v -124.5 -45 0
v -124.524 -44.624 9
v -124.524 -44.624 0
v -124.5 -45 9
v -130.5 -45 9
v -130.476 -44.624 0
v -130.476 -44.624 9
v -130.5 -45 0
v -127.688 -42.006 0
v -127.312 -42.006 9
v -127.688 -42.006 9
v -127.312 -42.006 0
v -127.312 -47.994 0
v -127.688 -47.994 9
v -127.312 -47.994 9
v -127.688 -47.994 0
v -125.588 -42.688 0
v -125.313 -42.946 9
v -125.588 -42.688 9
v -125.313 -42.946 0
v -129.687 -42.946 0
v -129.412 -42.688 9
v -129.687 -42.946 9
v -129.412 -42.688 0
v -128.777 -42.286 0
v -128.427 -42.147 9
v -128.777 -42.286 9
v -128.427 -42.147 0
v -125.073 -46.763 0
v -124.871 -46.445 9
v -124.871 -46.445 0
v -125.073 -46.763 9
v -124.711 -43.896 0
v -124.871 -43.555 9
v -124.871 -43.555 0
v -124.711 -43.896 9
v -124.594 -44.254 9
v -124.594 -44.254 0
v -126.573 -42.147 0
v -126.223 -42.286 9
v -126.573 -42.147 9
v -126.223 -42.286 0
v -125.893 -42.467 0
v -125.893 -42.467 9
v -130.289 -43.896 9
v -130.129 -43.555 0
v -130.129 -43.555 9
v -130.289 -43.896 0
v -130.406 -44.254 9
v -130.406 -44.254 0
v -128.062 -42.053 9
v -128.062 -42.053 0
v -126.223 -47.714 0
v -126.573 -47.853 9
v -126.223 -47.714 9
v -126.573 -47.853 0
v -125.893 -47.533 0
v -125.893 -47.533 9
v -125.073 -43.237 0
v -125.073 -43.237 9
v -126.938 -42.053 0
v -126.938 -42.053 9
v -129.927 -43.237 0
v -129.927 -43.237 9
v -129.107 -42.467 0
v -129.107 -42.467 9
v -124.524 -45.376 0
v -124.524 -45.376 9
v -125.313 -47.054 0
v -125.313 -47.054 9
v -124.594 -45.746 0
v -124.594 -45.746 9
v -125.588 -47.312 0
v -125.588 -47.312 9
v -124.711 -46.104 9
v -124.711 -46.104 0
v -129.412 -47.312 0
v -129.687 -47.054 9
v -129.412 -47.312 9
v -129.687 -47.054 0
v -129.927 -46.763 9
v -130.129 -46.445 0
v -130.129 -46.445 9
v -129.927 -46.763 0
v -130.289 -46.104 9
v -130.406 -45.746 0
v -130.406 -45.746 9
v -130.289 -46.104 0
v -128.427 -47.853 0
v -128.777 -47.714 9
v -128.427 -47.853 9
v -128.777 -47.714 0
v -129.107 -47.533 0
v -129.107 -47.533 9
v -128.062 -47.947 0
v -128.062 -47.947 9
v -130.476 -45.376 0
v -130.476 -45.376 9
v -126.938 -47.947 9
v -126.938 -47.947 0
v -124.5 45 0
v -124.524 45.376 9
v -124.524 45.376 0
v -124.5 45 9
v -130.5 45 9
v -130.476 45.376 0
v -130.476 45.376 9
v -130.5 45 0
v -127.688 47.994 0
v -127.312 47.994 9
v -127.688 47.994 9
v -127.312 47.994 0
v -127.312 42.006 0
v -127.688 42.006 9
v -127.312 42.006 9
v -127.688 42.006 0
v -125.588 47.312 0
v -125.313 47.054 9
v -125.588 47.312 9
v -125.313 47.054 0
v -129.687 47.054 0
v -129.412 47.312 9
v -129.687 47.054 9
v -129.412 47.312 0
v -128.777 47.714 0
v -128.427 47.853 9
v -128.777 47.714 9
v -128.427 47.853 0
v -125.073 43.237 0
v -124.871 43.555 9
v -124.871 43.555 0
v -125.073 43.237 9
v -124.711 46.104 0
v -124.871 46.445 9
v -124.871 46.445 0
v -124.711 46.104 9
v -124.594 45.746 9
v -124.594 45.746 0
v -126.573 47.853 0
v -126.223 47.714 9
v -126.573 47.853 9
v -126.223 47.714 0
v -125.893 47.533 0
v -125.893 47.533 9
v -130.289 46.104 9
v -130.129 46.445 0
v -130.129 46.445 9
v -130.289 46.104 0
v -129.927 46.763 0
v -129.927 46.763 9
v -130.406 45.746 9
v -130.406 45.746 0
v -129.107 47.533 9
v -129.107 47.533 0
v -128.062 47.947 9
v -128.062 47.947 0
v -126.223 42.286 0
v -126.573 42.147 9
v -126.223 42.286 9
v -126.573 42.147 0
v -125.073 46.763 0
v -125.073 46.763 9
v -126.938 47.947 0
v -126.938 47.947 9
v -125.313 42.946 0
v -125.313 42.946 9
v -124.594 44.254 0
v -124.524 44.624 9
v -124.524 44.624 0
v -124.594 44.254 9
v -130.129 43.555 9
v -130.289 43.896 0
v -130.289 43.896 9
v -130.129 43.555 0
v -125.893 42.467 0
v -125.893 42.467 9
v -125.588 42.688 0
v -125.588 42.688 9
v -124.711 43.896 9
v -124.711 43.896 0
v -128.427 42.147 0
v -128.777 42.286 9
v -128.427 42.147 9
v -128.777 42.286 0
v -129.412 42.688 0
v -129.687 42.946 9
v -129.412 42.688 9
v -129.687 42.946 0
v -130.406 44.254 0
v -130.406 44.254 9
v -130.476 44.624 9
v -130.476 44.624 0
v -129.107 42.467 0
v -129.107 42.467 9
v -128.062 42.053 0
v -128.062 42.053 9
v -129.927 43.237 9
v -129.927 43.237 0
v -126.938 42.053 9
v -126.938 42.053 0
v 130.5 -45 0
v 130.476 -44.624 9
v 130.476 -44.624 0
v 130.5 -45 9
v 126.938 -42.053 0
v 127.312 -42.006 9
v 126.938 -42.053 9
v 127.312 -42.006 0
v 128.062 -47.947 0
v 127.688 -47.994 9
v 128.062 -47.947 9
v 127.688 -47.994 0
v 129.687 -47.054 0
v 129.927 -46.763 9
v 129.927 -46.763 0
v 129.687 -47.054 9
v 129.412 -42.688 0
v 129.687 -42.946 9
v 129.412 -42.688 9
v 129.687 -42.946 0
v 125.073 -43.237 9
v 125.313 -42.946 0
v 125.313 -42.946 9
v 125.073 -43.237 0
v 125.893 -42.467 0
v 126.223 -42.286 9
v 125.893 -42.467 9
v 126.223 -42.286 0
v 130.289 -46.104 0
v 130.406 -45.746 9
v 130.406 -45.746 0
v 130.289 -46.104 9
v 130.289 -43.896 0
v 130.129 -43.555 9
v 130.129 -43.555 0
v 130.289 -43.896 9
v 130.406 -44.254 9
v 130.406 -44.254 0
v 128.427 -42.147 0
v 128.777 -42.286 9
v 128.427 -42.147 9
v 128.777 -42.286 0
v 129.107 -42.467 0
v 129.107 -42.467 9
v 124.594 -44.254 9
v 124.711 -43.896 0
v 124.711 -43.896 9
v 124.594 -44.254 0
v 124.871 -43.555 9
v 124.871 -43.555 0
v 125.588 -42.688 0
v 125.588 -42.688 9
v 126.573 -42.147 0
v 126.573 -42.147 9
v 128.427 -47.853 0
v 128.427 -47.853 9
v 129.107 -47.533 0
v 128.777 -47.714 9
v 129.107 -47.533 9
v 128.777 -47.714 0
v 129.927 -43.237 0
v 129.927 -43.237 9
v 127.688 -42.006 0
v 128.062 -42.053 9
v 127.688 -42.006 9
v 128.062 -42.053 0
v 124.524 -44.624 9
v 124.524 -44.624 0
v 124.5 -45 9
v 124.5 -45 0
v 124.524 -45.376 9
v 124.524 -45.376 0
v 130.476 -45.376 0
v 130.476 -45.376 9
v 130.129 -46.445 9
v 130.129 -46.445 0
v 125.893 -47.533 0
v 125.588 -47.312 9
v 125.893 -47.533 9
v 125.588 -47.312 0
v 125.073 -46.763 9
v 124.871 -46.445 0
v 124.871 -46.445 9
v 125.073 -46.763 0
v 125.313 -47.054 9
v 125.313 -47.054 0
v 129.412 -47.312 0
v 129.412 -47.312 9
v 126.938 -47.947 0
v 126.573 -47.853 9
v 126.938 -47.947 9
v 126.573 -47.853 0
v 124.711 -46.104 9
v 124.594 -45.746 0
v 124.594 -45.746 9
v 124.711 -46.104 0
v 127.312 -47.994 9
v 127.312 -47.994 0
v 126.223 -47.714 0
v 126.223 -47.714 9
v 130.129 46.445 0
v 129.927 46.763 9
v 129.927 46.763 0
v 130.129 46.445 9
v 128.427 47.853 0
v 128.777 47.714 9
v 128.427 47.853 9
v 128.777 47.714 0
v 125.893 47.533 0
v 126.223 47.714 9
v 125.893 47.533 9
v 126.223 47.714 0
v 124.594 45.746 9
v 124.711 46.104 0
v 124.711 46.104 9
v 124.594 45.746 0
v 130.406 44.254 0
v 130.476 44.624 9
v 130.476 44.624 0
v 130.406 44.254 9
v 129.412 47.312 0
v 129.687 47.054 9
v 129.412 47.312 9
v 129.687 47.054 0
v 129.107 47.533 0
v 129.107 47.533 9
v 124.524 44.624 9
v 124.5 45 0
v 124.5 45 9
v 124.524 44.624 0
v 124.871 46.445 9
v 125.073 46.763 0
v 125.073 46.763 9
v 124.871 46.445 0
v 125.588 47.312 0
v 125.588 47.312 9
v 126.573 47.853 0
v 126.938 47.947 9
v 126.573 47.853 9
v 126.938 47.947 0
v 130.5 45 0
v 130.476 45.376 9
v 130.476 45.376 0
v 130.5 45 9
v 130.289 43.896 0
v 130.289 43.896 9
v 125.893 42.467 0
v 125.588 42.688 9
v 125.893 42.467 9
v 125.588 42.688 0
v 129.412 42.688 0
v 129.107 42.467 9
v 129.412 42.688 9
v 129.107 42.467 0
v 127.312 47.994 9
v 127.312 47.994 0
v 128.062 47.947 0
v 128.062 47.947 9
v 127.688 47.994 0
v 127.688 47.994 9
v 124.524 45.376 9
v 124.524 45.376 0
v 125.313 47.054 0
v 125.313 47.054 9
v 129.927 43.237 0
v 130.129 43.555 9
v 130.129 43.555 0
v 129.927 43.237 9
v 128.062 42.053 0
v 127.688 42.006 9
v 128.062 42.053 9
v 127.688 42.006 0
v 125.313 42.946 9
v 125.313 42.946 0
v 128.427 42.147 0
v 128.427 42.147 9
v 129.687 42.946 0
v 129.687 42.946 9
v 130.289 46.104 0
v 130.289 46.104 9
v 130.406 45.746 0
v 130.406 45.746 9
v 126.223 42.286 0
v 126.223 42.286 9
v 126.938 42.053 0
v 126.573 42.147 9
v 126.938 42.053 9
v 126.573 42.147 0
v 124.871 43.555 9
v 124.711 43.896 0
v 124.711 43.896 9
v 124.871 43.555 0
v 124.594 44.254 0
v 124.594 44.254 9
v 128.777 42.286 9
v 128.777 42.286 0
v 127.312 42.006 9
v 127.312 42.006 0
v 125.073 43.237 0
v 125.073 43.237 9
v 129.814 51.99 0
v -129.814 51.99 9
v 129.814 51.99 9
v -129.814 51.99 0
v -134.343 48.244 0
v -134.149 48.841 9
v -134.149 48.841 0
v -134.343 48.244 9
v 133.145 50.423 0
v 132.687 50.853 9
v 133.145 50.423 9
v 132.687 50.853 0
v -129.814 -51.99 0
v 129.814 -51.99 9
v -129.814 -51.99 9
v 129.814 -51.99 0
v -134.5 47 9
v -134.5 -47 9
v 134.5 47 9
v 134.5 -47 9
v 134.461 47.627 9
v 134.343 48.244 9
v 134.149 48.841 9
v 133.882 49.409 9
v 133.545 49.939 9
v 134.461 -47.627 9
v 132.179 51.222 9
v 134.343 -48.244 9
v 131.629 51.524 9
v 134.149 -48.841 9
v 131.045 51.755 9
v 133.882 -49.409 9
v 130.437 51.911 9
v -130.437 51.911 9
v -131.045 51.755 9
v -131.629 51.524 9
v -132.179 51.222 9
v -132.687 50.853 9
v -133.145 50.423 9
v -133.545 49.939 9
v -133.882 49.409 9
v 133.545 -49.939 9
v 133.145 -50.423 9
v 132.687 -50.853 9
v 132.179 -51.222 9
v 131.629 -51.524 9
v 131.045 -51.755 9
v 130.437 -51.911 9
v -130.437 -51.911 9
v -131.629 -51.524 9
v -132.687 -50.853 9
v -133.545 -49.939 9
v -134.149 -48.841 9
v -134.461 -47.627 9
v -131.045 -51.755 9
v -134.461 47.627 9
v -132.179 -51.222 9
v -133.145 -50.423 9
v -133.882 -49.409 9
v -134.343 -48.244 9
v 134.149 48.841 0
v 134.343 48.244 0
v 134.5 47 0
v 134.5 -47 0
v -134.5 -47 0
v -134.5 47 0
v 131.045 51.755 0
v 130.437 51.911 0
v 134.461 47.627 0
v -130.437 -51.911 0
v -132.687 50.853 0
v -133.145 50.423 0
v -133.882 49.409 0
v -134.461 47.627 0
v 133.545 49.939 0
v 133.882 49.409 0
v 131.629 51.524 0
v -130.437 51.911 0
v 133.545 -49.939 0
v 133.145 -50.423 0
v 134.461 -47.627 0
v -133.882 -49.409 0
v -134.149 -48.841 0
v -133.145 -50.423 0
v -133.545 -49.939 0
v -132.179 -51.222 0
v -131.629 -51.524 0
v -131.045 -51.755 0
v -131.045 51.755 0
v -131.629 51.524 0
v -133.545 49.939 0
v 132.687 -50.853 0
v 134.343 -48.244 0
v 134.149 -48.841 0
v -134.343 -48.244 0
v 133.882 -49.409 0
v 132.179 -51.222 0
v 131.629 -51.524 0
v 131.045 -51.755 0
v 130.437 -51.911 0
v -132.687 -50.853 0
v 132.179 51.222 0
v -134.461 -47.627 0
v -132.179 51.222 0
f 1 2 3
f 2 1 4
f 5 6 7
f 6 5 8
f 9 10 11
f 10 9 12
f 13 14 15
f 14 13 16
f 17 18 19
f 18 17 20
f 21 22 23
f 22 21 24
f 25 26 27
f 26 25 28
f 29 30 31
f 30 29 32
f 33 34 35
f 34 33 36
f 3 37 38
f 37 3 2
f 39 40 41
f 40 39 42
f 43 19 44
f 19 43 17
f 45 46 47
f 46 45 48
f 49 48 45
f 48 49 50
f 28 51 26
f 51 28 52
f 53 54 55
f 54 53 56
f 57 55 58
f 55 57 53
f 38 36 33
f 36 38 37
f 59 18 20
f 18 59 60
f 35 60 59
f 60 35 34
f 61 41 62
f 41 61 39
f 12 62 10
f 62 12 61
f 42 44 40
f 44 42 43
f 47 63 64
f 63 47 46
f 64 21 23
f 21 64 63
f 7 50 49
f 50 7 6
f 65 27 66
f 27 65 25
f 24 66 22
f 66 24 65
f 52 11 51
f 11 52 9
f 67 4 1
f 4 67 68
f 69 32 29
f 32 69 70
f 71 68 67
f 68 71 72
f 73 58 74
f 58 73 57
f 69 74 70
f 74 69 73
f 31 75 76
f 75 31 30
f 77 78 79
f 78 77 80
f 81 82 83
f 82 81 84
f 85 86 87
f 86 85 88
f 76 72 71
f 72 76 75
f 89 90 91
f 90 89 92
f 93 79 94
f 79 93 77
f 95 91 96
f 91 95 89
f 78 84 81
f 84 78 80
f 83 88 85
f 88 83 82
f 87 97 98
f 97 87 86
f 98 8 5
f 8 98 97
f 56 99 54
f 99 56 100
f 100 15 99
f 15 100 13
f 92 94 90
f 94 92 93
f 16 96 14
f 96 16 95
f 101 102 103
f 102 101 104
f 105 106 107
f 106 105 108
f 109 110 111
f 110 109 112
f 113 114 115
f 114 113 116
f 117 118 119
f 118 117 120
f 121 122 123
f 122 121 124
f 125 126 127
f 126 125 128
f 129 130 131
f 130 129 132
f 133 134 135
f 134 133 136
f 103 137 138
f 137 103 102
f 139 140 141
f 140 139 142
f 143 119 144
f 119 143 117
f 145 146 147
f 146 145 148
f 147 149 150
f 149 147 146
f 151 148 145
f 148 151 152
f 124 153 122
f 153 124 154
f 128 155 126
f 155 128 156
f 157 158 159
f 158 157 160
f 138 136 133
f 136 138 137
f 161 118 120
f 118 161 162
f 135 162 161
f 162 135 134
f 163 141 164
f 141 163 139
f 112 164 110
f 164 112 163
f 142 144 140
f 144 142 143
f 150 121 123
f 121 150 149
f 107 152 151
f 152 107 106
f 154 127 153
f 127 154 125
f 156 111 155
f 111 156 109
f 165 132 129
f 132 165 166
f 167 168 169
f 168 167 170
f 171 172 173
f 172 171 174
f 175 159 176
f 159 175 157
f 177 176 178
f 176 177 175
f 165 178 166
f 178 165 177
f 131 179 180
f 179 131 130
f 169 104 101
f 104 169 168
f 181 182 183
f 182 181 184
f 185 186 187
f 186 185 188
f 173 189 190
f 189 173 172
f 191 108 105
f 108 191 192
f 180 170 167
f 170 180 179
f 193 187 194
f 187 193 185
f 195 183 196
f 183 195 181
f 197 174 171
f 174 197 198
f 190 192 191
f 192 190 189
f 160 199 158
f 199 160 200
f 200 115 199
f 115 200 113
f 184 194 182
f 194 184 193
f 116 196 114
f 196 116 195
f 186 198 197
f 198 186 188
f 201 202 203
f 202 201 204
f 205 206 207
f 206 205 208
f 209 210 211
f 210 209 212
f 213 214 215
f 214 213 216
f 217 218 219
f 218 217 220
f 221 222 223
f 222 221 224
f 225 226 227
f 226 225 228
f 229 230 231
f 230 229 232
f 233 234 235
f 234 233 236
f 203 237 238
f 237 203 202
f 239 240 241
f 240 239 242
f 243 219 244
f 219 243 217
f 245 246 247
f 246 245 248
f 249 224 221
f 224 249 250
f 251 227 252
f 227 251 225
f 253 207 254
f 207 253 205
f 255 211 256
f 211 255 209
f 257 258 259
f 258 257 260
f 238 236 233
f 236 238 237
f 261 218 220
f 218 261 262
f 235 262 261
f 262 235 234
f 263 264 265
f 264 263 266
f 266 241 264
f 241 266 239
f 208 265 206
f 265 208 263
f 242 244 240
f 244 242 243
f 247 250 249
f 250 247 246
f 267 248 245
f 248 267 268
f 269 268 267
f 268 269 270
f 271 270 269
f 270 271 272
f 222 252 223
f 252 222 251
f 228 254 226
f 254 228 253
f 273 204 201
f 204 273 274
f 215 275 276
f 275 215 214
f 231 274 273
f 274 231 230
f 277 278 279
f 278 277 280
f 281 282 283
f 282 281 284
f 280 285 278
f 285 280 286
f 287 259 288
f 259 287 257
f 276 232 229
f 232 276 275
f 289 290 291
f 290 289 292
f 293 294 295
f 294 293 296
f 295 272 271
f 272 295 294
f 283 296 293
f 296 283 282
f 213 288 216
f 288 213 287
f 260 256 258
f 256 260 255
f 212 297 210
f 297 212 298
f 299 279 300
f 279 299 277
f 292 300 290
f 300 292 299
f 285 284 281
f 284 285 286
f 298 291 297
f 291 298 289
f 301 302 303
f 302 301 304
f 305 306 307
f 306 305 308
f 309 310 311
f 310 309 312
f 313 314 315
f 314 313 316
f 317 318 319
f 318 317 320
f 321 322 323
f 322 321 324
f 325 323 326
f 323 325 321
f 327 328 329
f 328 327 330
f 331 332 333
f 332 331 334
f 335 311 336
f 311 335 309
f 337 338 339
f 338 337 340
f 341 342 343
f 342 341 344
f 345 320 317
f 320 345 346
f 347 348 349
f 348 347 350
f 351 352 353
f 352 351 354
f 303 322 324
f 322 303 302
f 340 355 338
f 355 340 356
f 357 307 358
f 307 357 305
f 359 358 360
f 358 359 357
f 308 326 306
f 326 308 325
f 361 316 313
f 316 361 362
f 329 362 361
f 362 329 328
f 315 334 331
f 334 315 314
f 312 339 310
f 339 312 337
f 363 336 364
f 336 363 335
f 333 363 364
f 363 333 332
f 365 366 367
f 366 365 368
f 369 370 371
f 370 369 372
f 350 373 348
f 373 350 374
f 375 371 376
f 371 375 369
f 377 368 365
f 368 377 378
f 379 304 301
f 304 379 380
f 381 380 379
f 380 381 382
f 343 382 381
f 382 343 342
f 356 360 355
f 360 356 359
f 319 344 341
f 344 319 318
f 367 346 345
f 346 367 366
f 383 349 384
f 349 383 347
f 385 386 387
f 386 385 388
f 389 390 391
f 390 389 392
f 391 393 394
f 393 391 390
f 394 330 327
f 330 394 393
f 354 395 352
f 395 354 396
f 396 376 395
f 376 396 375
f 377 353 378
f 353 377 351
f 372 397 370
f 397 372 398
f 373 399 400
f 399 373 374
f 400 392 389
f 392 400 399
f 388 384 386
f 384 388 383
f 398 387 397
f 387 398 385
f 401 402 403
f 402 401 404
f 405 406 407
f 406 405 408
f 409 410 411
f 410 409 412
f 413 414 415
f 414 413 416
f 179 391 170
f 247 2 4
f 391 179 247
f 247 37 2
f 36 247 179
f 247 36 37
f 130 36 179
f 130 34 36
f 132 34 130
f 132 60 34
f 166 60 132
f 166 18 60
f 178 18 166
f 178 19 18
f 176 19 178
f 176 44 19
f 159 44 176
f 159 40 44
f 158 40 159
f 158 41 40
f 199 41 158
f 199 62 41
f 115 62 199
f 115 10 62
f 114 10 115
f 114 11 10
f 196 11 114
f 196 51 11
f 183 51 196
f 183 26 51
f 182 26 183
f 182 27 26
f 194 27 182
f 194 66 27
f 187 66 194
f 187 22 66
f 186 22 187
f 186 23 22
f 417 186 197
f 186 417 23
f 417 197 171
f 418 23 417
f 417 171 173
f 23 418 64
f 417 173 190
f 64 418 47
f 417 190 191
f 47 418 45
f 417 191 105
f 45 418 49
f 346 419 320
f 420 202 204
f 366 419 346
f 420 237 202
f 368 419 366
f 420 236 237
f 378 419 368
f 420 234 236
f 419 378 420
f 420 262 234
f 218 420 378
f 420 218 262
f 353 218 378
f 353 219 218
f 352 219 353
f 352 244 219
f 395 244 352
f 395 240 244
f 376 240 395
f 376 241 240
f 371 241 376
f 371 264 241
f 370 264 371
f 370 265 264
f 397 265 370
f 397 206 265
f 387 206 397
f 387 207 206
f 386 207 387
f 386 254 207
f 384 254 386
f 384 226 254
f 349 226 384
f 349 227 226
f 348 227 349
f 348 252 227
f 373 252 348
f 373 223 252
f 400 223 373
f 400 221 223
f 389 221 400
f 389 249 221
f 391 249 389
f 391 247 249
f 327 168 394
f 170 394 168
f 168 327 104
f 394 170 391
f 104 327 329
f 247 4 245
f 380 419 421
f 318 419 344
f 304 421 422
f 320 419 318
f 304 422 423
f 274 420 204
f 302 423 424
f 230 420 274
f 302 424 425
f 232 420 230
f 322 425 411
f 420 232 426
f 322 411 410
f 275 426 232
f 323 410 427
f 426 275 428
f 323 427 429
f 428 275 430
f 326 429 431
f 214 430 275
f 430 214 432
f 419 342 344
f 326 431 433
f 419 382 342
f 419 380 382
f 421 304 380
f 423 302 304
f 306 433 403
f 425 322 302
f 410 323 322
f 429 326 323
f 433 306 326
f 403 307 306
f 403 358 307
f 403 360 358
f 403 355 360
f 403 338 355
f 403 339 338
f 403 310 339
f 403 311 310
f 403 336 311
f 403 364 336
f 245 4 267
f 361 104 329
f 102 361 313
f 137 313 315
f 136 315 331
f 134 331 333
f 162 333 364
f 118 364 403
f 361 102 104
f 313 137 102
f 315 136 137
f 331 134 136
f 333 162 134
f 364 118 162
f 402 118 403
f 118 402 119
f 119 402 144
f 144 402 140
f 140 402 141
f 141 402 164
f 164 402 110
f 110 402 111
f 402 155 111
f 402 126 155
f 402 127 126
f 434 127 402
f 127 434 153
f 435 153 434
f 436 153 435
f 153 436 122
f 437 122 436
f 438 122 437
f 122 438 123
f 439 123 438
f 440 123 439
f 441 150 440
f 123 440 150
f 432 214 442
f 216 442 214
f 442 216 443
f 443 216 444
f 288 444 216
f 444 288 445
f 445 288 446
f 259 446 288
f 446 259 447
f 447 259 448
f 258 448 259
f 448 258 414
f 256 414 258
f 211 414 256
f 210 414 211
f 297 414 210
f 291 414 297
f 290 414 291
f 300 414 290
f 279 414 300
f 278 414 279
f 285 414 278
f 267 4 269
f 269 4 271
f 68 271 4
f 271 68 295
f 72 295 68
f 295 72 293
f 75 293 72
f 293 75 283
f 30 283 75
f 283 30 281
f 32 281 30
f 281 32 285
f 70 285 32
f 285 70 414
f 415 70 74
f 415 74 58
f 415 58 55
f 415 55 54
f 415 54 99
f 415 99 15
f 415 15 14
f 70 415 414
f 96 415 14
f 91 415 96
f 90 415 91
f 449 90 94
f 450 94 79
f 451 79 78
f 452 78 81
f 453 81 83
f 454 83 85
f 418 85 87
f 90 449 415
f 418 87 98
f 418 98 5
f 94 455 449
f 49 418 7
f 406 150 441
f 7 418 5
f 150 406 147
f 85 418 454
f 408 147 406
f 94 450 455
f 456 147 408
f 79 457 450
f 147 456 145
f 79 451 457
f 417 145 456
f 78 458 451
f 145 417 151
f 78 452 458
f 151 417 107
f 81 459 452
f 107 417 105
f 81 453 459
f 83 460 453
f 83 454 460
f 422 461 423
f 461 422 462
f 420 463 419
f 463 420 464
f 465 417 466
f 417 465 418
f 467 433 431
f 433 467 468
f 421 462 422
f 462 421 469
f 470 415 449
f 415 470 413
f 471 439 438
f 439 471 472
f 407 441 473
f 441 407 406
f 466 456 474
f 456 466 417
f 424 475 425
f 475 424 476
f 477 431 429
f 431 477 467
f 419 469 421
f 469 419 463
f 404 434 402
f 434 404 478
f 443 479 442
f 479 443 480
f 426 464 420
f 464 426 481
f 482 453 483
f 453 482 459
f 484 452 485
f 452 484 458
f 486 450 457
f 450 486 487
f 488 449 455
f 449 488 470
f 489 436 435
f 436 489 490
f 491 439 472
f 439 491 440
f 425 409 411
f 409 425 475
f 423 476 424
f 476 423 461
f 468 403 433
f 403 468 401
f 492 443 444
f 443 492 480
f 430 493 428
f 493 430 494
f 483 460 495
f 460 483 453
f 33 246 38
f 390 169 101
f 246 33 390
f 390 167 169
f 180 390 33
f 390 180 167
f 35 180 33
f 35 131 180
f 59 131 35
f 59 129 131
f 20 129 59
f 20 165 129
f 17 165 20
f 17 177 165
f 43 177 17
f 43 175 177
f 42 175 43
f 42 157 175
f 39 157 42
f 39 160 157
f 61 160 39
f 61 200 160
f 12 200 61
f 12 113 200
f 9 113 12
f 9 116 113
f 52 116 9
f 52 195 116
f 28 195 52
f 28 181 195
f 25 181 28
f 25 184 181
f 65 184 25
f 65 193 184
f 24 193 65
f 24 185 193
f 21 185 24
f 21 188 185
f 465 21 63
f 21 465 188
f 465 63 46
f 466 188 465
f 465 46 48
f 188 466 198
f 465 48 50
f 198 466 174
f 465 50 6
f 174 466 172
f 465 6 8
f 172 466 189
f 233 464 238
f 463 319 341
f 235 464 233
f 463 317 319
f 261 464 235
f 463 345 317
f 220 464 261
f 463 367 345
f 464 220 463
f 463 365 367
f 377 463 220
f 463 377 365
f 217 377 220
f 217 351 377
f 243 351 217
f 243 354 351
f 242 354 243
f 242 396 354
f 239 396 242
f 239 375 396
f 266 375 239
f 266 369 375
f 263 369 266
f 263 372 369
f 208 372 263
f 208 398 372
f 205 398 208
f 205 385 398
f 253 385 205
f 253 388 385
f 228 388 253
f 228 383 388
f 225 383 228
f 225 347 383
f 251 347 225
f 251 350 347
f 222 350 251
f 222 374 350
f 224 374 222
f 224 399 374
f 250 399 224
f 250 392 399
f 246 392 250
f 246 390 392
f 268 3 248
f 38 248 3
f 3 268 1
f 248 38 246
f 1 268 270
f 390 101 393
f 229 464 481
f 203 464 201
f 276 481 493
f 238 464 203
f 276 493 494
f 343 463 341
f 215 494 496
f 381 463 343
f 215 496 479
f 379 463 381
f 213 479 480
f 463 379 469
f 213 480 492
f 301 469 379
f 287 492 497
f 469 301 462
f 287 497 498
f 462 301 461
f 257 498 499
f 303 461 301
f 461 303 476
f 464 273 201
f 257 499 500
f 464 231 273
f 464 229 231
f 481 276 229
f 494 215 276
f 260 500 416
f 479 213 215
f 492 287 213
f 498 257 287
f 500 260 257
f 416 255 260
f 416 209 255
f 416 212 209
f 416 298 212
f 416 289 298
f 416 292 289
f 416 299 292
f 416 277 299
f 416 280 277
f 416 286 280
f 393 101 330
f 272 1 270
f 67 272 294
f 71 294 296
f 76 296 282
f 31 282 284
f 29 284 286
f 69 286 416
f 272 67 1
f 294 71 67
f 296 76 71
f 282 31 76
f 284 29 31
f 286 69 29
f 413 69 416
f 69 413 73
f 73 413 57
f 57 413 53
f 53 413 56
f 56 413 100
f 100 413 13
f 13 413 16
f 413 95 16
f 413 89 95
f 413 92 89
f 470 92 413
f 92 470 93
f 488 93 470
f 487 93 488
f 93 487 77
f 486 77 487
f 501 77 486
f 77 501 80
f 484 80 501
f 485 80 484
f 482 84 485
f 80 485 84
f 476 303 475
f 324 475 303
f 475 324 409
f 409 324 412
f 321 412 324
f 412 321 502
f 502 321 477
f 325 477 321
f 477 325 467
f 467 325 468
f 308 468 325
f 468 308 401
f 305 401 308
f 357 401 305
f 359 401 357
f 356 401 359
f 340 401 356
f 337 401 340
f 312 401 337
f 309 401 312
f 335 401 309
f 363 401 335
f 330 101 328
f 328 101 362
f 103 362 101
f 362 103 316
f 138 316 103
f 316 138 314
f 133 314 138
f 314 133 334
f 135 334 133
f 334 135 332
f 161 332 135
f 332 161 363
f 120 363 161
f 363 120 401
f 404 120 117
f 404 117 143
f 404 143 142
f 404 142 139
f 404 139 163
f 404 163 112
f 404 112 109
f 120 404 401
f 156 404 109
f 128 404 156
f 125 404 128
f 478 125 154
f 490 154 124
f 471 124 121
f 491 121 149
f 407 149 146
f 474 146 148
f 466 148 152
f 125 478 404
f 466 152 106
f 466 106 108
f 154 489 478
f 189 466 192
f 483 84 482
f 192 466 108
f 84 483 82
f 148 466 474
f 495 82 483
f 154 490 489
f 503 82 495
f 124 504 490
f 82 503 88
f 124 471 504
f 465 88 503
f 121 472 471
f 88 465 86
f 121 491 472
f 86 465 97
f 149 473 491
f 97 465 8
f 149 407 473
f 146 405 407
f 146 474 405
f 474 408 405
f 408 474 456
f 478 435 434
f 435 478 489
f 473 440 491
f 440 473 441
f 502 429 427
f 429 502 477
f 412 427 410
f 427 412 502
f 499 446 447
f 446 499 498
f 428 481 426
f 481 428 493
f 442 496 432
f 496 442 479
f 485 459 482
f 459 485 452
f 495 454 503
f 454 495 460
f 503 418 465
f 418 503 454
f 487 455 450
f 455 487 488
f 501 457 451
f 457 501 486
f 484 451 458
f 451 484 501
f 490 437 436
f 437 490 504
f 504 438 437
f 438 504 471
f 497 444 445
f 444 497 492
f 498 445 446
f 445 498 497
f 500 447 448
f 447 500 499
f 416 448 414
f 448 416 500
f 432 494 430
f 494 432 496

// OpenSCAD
$fn = 50;


difference() {
	union() {
		hull() {
			translate(v = [-129.5000000000, 47.0000000000, 0]) {
				cylinder(h = 9, r = 5);
			}
			translate(v = [129.5000000000, 47.0000000000, 0]) {
				cylinder(h = 9, r = 5);
			}
			translate(v = [-129.5000000000, -47.0000000000, 0]) {
				cylinder(h = 9, r = 5);
			}
			translate(v = [129.5000000000, -47.0000000000, 0]) {
				cylinder(h = 9, r = 5);
			}
		}
	}
	union() {
		translate(v = [-127.5000000000, -45.0000000000, -100.0000000000]) {
			cylinder(h = 200, r = 3.0000000000);
		}
		translate(v = [-127.5000000000, 45.0000000000, -100.0000000000]) {
			cylinder(h = 200, r = 3.0000000000);
		}
		translate(v = [127.5000000000, -45.0000000000, -100.0000000000]) {
			cylinder(h = 200, r = 3.0000000000);
		}
		translate(v = [127.5000000000, 45.0000000000, -100.0000000000]) {
			cylinder(h = 200, r = 3.0000000000);
		}
	}
}
